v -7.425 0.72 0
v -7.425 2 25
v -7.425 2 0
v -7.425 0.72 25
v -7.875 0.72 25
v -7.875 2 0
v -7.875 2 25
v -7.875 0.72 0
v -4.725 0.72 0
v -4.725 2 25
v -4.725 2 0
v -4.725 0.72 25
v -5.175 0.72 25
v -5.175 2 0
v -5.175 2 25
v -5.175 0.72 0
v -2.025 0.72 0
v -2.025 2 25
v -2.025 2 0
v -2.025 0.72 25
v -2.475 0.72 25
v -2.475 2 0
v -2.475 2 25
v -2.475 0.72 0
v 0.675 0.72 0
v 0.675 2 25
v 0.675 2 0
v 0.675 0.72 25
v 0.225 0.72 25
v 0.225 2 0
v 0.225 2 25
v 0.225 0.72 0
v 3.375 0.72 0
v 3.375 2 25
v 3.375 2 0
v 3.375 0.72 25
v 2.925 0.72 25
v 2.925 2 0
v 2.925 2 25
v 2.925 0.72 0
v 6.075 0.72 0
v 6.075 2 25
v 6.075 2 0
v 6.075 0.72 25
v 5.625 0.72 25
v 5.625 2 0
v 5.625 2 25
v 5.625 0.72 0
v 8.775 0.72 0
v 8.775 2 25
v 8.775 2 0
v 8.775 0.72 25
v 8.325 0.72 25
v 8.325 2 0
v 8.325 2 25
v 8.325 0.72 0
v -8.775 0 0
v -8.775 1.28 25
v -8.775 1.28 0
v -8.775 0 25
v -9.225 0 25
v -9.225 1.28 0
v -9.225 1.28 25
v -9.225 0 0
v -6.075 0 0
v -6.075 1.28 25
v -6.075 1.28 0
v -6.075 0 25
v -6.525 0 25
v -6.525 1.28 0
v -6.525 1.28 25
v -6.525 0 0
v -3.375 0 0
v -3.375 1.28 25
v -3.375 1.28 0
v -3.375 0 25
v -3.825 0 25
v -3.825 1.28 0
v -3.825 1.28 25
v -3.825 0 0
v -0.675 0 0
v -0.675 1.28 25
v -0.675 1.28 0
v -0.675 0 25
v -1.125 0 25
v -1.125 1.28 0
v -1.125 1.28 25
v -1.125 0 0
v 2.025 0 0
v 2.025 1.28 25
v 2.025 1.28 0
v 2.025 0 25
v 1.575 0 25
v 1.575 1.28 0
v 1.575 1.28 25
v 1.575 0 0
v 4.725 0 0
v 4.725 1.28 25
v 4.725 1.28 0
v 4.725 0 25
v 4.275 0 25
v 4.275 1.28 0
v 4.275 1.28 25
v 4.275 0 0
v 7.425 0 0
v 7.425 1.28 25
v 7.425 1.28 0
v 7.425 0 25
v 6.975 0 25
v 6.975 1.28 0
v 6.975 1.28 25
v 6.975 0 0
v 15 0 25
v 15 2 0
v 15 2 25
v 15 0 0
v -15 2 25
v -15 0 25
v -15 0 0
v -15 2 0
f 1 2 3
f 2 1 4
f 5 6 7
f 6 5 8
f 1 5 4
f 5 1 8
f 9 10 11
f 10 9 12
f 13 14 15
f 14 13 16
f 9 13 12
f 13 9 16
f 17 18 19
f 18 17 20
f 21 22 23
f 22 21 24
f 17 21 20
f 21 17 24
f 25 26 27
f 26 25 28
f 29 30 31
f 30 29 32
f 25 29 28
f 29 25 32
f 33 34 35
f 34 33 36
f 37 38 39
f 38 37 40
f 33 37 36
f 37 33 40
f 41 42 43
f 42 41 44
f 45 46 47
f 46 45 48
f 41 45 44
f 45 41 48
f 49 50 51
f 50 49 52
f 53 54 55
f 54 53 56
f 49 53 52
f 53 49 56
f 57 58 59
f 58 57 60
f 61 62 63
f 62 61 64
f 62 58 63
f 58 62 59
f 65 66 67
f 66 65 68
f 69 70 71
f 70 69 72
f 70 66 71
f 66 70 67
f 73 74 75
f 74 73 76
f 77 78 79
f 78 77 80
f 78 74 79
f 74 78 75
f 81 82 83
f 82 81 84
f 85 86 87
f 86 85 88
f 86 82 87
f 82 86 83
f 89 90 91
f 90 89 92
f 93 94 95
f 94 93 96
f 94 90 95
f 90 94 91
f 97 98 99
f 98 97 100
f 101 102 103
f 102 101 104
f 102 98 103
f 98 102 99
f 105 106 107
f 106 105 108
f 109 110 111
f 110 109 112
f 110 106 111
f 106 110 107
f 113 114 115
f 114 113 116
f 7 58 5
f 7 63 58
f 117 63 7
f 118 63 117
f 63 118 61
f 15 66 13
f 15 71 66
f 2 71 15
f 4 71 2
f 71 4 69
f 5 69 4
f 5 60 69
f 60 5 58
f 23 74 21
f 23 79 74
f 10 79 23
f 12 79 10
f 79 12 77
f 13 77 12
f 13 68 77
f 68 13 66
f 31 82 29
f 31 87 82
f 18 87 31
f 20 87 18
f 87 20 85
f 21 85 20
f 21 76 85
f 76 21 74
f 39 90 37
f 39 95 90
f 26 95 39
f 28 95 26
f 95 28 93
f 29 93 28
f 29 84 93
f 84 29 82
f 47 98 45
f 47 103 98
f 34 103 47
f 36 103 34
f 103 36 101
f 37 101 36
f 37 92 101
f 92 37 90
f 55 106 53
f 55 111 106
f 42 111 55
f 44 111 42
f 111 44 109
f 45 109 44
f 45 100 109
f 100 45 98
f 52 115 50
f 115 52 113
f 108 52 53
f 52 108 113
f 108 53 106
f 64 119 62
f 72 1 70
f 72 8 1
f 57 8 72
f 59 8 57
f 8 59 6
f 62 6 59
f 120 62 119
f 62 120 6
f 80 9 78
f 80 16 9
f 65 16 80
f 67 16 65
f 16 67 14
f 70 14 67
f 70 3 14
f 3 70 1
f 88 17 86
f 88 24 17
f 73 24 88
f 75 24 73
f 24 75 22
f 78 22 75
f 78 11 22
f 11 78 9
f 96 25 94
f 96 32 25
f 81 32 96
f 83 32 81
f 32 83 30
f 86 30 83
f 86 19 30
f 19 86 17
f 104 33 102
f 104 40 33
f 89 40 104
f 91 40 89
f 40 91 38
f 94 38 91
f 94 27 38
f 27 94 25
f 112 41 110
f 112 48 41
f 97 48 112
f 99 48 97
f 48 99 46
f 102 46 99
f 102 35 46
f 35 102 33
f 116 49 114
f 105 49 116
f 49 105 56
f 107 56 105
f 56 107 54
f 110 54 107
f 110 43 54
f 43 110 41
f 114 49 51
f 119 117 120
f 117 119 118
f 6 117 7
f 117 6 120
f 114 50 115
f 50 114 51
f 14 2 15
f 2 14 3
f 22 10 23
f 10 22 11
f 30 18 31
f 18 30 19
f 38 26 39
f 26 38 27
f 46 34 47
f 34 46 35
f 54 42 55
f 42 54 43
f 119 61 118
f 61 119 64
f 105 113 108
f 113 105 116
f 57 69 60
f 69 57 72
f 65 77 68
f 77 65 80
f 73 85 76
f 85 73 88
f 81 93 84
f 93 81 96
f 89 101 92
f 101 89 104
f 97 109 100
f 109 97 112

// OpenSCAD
THICKNESS = 2;
LENGTH = 30;
HEIGHT = 25;
ATOM = 0.001;

difference() {
    translate([-LENGTH/2, 0, 0])
    cube([LENGTH, THICKNESS, HEIGHT]);

    th2 = THICKNESS*.9;
    for (i=[-3:3]) {
        translate([th2*i*1.5 -th2/4+th2/4*1.5, th2/2.5, -ATOM])
        cube([th2*.25, THICKNESS, HEIGHT + ATOM*2]);
    }

    for (i=[-3:3]) {
        translate([th2*i*1.5 -th2/4-th2/4*1.5, -th2/2.5, -ATOM])
        cube([th2*.25, THICKNESS, HEIGHT + ATOM*2]);
    }
}
